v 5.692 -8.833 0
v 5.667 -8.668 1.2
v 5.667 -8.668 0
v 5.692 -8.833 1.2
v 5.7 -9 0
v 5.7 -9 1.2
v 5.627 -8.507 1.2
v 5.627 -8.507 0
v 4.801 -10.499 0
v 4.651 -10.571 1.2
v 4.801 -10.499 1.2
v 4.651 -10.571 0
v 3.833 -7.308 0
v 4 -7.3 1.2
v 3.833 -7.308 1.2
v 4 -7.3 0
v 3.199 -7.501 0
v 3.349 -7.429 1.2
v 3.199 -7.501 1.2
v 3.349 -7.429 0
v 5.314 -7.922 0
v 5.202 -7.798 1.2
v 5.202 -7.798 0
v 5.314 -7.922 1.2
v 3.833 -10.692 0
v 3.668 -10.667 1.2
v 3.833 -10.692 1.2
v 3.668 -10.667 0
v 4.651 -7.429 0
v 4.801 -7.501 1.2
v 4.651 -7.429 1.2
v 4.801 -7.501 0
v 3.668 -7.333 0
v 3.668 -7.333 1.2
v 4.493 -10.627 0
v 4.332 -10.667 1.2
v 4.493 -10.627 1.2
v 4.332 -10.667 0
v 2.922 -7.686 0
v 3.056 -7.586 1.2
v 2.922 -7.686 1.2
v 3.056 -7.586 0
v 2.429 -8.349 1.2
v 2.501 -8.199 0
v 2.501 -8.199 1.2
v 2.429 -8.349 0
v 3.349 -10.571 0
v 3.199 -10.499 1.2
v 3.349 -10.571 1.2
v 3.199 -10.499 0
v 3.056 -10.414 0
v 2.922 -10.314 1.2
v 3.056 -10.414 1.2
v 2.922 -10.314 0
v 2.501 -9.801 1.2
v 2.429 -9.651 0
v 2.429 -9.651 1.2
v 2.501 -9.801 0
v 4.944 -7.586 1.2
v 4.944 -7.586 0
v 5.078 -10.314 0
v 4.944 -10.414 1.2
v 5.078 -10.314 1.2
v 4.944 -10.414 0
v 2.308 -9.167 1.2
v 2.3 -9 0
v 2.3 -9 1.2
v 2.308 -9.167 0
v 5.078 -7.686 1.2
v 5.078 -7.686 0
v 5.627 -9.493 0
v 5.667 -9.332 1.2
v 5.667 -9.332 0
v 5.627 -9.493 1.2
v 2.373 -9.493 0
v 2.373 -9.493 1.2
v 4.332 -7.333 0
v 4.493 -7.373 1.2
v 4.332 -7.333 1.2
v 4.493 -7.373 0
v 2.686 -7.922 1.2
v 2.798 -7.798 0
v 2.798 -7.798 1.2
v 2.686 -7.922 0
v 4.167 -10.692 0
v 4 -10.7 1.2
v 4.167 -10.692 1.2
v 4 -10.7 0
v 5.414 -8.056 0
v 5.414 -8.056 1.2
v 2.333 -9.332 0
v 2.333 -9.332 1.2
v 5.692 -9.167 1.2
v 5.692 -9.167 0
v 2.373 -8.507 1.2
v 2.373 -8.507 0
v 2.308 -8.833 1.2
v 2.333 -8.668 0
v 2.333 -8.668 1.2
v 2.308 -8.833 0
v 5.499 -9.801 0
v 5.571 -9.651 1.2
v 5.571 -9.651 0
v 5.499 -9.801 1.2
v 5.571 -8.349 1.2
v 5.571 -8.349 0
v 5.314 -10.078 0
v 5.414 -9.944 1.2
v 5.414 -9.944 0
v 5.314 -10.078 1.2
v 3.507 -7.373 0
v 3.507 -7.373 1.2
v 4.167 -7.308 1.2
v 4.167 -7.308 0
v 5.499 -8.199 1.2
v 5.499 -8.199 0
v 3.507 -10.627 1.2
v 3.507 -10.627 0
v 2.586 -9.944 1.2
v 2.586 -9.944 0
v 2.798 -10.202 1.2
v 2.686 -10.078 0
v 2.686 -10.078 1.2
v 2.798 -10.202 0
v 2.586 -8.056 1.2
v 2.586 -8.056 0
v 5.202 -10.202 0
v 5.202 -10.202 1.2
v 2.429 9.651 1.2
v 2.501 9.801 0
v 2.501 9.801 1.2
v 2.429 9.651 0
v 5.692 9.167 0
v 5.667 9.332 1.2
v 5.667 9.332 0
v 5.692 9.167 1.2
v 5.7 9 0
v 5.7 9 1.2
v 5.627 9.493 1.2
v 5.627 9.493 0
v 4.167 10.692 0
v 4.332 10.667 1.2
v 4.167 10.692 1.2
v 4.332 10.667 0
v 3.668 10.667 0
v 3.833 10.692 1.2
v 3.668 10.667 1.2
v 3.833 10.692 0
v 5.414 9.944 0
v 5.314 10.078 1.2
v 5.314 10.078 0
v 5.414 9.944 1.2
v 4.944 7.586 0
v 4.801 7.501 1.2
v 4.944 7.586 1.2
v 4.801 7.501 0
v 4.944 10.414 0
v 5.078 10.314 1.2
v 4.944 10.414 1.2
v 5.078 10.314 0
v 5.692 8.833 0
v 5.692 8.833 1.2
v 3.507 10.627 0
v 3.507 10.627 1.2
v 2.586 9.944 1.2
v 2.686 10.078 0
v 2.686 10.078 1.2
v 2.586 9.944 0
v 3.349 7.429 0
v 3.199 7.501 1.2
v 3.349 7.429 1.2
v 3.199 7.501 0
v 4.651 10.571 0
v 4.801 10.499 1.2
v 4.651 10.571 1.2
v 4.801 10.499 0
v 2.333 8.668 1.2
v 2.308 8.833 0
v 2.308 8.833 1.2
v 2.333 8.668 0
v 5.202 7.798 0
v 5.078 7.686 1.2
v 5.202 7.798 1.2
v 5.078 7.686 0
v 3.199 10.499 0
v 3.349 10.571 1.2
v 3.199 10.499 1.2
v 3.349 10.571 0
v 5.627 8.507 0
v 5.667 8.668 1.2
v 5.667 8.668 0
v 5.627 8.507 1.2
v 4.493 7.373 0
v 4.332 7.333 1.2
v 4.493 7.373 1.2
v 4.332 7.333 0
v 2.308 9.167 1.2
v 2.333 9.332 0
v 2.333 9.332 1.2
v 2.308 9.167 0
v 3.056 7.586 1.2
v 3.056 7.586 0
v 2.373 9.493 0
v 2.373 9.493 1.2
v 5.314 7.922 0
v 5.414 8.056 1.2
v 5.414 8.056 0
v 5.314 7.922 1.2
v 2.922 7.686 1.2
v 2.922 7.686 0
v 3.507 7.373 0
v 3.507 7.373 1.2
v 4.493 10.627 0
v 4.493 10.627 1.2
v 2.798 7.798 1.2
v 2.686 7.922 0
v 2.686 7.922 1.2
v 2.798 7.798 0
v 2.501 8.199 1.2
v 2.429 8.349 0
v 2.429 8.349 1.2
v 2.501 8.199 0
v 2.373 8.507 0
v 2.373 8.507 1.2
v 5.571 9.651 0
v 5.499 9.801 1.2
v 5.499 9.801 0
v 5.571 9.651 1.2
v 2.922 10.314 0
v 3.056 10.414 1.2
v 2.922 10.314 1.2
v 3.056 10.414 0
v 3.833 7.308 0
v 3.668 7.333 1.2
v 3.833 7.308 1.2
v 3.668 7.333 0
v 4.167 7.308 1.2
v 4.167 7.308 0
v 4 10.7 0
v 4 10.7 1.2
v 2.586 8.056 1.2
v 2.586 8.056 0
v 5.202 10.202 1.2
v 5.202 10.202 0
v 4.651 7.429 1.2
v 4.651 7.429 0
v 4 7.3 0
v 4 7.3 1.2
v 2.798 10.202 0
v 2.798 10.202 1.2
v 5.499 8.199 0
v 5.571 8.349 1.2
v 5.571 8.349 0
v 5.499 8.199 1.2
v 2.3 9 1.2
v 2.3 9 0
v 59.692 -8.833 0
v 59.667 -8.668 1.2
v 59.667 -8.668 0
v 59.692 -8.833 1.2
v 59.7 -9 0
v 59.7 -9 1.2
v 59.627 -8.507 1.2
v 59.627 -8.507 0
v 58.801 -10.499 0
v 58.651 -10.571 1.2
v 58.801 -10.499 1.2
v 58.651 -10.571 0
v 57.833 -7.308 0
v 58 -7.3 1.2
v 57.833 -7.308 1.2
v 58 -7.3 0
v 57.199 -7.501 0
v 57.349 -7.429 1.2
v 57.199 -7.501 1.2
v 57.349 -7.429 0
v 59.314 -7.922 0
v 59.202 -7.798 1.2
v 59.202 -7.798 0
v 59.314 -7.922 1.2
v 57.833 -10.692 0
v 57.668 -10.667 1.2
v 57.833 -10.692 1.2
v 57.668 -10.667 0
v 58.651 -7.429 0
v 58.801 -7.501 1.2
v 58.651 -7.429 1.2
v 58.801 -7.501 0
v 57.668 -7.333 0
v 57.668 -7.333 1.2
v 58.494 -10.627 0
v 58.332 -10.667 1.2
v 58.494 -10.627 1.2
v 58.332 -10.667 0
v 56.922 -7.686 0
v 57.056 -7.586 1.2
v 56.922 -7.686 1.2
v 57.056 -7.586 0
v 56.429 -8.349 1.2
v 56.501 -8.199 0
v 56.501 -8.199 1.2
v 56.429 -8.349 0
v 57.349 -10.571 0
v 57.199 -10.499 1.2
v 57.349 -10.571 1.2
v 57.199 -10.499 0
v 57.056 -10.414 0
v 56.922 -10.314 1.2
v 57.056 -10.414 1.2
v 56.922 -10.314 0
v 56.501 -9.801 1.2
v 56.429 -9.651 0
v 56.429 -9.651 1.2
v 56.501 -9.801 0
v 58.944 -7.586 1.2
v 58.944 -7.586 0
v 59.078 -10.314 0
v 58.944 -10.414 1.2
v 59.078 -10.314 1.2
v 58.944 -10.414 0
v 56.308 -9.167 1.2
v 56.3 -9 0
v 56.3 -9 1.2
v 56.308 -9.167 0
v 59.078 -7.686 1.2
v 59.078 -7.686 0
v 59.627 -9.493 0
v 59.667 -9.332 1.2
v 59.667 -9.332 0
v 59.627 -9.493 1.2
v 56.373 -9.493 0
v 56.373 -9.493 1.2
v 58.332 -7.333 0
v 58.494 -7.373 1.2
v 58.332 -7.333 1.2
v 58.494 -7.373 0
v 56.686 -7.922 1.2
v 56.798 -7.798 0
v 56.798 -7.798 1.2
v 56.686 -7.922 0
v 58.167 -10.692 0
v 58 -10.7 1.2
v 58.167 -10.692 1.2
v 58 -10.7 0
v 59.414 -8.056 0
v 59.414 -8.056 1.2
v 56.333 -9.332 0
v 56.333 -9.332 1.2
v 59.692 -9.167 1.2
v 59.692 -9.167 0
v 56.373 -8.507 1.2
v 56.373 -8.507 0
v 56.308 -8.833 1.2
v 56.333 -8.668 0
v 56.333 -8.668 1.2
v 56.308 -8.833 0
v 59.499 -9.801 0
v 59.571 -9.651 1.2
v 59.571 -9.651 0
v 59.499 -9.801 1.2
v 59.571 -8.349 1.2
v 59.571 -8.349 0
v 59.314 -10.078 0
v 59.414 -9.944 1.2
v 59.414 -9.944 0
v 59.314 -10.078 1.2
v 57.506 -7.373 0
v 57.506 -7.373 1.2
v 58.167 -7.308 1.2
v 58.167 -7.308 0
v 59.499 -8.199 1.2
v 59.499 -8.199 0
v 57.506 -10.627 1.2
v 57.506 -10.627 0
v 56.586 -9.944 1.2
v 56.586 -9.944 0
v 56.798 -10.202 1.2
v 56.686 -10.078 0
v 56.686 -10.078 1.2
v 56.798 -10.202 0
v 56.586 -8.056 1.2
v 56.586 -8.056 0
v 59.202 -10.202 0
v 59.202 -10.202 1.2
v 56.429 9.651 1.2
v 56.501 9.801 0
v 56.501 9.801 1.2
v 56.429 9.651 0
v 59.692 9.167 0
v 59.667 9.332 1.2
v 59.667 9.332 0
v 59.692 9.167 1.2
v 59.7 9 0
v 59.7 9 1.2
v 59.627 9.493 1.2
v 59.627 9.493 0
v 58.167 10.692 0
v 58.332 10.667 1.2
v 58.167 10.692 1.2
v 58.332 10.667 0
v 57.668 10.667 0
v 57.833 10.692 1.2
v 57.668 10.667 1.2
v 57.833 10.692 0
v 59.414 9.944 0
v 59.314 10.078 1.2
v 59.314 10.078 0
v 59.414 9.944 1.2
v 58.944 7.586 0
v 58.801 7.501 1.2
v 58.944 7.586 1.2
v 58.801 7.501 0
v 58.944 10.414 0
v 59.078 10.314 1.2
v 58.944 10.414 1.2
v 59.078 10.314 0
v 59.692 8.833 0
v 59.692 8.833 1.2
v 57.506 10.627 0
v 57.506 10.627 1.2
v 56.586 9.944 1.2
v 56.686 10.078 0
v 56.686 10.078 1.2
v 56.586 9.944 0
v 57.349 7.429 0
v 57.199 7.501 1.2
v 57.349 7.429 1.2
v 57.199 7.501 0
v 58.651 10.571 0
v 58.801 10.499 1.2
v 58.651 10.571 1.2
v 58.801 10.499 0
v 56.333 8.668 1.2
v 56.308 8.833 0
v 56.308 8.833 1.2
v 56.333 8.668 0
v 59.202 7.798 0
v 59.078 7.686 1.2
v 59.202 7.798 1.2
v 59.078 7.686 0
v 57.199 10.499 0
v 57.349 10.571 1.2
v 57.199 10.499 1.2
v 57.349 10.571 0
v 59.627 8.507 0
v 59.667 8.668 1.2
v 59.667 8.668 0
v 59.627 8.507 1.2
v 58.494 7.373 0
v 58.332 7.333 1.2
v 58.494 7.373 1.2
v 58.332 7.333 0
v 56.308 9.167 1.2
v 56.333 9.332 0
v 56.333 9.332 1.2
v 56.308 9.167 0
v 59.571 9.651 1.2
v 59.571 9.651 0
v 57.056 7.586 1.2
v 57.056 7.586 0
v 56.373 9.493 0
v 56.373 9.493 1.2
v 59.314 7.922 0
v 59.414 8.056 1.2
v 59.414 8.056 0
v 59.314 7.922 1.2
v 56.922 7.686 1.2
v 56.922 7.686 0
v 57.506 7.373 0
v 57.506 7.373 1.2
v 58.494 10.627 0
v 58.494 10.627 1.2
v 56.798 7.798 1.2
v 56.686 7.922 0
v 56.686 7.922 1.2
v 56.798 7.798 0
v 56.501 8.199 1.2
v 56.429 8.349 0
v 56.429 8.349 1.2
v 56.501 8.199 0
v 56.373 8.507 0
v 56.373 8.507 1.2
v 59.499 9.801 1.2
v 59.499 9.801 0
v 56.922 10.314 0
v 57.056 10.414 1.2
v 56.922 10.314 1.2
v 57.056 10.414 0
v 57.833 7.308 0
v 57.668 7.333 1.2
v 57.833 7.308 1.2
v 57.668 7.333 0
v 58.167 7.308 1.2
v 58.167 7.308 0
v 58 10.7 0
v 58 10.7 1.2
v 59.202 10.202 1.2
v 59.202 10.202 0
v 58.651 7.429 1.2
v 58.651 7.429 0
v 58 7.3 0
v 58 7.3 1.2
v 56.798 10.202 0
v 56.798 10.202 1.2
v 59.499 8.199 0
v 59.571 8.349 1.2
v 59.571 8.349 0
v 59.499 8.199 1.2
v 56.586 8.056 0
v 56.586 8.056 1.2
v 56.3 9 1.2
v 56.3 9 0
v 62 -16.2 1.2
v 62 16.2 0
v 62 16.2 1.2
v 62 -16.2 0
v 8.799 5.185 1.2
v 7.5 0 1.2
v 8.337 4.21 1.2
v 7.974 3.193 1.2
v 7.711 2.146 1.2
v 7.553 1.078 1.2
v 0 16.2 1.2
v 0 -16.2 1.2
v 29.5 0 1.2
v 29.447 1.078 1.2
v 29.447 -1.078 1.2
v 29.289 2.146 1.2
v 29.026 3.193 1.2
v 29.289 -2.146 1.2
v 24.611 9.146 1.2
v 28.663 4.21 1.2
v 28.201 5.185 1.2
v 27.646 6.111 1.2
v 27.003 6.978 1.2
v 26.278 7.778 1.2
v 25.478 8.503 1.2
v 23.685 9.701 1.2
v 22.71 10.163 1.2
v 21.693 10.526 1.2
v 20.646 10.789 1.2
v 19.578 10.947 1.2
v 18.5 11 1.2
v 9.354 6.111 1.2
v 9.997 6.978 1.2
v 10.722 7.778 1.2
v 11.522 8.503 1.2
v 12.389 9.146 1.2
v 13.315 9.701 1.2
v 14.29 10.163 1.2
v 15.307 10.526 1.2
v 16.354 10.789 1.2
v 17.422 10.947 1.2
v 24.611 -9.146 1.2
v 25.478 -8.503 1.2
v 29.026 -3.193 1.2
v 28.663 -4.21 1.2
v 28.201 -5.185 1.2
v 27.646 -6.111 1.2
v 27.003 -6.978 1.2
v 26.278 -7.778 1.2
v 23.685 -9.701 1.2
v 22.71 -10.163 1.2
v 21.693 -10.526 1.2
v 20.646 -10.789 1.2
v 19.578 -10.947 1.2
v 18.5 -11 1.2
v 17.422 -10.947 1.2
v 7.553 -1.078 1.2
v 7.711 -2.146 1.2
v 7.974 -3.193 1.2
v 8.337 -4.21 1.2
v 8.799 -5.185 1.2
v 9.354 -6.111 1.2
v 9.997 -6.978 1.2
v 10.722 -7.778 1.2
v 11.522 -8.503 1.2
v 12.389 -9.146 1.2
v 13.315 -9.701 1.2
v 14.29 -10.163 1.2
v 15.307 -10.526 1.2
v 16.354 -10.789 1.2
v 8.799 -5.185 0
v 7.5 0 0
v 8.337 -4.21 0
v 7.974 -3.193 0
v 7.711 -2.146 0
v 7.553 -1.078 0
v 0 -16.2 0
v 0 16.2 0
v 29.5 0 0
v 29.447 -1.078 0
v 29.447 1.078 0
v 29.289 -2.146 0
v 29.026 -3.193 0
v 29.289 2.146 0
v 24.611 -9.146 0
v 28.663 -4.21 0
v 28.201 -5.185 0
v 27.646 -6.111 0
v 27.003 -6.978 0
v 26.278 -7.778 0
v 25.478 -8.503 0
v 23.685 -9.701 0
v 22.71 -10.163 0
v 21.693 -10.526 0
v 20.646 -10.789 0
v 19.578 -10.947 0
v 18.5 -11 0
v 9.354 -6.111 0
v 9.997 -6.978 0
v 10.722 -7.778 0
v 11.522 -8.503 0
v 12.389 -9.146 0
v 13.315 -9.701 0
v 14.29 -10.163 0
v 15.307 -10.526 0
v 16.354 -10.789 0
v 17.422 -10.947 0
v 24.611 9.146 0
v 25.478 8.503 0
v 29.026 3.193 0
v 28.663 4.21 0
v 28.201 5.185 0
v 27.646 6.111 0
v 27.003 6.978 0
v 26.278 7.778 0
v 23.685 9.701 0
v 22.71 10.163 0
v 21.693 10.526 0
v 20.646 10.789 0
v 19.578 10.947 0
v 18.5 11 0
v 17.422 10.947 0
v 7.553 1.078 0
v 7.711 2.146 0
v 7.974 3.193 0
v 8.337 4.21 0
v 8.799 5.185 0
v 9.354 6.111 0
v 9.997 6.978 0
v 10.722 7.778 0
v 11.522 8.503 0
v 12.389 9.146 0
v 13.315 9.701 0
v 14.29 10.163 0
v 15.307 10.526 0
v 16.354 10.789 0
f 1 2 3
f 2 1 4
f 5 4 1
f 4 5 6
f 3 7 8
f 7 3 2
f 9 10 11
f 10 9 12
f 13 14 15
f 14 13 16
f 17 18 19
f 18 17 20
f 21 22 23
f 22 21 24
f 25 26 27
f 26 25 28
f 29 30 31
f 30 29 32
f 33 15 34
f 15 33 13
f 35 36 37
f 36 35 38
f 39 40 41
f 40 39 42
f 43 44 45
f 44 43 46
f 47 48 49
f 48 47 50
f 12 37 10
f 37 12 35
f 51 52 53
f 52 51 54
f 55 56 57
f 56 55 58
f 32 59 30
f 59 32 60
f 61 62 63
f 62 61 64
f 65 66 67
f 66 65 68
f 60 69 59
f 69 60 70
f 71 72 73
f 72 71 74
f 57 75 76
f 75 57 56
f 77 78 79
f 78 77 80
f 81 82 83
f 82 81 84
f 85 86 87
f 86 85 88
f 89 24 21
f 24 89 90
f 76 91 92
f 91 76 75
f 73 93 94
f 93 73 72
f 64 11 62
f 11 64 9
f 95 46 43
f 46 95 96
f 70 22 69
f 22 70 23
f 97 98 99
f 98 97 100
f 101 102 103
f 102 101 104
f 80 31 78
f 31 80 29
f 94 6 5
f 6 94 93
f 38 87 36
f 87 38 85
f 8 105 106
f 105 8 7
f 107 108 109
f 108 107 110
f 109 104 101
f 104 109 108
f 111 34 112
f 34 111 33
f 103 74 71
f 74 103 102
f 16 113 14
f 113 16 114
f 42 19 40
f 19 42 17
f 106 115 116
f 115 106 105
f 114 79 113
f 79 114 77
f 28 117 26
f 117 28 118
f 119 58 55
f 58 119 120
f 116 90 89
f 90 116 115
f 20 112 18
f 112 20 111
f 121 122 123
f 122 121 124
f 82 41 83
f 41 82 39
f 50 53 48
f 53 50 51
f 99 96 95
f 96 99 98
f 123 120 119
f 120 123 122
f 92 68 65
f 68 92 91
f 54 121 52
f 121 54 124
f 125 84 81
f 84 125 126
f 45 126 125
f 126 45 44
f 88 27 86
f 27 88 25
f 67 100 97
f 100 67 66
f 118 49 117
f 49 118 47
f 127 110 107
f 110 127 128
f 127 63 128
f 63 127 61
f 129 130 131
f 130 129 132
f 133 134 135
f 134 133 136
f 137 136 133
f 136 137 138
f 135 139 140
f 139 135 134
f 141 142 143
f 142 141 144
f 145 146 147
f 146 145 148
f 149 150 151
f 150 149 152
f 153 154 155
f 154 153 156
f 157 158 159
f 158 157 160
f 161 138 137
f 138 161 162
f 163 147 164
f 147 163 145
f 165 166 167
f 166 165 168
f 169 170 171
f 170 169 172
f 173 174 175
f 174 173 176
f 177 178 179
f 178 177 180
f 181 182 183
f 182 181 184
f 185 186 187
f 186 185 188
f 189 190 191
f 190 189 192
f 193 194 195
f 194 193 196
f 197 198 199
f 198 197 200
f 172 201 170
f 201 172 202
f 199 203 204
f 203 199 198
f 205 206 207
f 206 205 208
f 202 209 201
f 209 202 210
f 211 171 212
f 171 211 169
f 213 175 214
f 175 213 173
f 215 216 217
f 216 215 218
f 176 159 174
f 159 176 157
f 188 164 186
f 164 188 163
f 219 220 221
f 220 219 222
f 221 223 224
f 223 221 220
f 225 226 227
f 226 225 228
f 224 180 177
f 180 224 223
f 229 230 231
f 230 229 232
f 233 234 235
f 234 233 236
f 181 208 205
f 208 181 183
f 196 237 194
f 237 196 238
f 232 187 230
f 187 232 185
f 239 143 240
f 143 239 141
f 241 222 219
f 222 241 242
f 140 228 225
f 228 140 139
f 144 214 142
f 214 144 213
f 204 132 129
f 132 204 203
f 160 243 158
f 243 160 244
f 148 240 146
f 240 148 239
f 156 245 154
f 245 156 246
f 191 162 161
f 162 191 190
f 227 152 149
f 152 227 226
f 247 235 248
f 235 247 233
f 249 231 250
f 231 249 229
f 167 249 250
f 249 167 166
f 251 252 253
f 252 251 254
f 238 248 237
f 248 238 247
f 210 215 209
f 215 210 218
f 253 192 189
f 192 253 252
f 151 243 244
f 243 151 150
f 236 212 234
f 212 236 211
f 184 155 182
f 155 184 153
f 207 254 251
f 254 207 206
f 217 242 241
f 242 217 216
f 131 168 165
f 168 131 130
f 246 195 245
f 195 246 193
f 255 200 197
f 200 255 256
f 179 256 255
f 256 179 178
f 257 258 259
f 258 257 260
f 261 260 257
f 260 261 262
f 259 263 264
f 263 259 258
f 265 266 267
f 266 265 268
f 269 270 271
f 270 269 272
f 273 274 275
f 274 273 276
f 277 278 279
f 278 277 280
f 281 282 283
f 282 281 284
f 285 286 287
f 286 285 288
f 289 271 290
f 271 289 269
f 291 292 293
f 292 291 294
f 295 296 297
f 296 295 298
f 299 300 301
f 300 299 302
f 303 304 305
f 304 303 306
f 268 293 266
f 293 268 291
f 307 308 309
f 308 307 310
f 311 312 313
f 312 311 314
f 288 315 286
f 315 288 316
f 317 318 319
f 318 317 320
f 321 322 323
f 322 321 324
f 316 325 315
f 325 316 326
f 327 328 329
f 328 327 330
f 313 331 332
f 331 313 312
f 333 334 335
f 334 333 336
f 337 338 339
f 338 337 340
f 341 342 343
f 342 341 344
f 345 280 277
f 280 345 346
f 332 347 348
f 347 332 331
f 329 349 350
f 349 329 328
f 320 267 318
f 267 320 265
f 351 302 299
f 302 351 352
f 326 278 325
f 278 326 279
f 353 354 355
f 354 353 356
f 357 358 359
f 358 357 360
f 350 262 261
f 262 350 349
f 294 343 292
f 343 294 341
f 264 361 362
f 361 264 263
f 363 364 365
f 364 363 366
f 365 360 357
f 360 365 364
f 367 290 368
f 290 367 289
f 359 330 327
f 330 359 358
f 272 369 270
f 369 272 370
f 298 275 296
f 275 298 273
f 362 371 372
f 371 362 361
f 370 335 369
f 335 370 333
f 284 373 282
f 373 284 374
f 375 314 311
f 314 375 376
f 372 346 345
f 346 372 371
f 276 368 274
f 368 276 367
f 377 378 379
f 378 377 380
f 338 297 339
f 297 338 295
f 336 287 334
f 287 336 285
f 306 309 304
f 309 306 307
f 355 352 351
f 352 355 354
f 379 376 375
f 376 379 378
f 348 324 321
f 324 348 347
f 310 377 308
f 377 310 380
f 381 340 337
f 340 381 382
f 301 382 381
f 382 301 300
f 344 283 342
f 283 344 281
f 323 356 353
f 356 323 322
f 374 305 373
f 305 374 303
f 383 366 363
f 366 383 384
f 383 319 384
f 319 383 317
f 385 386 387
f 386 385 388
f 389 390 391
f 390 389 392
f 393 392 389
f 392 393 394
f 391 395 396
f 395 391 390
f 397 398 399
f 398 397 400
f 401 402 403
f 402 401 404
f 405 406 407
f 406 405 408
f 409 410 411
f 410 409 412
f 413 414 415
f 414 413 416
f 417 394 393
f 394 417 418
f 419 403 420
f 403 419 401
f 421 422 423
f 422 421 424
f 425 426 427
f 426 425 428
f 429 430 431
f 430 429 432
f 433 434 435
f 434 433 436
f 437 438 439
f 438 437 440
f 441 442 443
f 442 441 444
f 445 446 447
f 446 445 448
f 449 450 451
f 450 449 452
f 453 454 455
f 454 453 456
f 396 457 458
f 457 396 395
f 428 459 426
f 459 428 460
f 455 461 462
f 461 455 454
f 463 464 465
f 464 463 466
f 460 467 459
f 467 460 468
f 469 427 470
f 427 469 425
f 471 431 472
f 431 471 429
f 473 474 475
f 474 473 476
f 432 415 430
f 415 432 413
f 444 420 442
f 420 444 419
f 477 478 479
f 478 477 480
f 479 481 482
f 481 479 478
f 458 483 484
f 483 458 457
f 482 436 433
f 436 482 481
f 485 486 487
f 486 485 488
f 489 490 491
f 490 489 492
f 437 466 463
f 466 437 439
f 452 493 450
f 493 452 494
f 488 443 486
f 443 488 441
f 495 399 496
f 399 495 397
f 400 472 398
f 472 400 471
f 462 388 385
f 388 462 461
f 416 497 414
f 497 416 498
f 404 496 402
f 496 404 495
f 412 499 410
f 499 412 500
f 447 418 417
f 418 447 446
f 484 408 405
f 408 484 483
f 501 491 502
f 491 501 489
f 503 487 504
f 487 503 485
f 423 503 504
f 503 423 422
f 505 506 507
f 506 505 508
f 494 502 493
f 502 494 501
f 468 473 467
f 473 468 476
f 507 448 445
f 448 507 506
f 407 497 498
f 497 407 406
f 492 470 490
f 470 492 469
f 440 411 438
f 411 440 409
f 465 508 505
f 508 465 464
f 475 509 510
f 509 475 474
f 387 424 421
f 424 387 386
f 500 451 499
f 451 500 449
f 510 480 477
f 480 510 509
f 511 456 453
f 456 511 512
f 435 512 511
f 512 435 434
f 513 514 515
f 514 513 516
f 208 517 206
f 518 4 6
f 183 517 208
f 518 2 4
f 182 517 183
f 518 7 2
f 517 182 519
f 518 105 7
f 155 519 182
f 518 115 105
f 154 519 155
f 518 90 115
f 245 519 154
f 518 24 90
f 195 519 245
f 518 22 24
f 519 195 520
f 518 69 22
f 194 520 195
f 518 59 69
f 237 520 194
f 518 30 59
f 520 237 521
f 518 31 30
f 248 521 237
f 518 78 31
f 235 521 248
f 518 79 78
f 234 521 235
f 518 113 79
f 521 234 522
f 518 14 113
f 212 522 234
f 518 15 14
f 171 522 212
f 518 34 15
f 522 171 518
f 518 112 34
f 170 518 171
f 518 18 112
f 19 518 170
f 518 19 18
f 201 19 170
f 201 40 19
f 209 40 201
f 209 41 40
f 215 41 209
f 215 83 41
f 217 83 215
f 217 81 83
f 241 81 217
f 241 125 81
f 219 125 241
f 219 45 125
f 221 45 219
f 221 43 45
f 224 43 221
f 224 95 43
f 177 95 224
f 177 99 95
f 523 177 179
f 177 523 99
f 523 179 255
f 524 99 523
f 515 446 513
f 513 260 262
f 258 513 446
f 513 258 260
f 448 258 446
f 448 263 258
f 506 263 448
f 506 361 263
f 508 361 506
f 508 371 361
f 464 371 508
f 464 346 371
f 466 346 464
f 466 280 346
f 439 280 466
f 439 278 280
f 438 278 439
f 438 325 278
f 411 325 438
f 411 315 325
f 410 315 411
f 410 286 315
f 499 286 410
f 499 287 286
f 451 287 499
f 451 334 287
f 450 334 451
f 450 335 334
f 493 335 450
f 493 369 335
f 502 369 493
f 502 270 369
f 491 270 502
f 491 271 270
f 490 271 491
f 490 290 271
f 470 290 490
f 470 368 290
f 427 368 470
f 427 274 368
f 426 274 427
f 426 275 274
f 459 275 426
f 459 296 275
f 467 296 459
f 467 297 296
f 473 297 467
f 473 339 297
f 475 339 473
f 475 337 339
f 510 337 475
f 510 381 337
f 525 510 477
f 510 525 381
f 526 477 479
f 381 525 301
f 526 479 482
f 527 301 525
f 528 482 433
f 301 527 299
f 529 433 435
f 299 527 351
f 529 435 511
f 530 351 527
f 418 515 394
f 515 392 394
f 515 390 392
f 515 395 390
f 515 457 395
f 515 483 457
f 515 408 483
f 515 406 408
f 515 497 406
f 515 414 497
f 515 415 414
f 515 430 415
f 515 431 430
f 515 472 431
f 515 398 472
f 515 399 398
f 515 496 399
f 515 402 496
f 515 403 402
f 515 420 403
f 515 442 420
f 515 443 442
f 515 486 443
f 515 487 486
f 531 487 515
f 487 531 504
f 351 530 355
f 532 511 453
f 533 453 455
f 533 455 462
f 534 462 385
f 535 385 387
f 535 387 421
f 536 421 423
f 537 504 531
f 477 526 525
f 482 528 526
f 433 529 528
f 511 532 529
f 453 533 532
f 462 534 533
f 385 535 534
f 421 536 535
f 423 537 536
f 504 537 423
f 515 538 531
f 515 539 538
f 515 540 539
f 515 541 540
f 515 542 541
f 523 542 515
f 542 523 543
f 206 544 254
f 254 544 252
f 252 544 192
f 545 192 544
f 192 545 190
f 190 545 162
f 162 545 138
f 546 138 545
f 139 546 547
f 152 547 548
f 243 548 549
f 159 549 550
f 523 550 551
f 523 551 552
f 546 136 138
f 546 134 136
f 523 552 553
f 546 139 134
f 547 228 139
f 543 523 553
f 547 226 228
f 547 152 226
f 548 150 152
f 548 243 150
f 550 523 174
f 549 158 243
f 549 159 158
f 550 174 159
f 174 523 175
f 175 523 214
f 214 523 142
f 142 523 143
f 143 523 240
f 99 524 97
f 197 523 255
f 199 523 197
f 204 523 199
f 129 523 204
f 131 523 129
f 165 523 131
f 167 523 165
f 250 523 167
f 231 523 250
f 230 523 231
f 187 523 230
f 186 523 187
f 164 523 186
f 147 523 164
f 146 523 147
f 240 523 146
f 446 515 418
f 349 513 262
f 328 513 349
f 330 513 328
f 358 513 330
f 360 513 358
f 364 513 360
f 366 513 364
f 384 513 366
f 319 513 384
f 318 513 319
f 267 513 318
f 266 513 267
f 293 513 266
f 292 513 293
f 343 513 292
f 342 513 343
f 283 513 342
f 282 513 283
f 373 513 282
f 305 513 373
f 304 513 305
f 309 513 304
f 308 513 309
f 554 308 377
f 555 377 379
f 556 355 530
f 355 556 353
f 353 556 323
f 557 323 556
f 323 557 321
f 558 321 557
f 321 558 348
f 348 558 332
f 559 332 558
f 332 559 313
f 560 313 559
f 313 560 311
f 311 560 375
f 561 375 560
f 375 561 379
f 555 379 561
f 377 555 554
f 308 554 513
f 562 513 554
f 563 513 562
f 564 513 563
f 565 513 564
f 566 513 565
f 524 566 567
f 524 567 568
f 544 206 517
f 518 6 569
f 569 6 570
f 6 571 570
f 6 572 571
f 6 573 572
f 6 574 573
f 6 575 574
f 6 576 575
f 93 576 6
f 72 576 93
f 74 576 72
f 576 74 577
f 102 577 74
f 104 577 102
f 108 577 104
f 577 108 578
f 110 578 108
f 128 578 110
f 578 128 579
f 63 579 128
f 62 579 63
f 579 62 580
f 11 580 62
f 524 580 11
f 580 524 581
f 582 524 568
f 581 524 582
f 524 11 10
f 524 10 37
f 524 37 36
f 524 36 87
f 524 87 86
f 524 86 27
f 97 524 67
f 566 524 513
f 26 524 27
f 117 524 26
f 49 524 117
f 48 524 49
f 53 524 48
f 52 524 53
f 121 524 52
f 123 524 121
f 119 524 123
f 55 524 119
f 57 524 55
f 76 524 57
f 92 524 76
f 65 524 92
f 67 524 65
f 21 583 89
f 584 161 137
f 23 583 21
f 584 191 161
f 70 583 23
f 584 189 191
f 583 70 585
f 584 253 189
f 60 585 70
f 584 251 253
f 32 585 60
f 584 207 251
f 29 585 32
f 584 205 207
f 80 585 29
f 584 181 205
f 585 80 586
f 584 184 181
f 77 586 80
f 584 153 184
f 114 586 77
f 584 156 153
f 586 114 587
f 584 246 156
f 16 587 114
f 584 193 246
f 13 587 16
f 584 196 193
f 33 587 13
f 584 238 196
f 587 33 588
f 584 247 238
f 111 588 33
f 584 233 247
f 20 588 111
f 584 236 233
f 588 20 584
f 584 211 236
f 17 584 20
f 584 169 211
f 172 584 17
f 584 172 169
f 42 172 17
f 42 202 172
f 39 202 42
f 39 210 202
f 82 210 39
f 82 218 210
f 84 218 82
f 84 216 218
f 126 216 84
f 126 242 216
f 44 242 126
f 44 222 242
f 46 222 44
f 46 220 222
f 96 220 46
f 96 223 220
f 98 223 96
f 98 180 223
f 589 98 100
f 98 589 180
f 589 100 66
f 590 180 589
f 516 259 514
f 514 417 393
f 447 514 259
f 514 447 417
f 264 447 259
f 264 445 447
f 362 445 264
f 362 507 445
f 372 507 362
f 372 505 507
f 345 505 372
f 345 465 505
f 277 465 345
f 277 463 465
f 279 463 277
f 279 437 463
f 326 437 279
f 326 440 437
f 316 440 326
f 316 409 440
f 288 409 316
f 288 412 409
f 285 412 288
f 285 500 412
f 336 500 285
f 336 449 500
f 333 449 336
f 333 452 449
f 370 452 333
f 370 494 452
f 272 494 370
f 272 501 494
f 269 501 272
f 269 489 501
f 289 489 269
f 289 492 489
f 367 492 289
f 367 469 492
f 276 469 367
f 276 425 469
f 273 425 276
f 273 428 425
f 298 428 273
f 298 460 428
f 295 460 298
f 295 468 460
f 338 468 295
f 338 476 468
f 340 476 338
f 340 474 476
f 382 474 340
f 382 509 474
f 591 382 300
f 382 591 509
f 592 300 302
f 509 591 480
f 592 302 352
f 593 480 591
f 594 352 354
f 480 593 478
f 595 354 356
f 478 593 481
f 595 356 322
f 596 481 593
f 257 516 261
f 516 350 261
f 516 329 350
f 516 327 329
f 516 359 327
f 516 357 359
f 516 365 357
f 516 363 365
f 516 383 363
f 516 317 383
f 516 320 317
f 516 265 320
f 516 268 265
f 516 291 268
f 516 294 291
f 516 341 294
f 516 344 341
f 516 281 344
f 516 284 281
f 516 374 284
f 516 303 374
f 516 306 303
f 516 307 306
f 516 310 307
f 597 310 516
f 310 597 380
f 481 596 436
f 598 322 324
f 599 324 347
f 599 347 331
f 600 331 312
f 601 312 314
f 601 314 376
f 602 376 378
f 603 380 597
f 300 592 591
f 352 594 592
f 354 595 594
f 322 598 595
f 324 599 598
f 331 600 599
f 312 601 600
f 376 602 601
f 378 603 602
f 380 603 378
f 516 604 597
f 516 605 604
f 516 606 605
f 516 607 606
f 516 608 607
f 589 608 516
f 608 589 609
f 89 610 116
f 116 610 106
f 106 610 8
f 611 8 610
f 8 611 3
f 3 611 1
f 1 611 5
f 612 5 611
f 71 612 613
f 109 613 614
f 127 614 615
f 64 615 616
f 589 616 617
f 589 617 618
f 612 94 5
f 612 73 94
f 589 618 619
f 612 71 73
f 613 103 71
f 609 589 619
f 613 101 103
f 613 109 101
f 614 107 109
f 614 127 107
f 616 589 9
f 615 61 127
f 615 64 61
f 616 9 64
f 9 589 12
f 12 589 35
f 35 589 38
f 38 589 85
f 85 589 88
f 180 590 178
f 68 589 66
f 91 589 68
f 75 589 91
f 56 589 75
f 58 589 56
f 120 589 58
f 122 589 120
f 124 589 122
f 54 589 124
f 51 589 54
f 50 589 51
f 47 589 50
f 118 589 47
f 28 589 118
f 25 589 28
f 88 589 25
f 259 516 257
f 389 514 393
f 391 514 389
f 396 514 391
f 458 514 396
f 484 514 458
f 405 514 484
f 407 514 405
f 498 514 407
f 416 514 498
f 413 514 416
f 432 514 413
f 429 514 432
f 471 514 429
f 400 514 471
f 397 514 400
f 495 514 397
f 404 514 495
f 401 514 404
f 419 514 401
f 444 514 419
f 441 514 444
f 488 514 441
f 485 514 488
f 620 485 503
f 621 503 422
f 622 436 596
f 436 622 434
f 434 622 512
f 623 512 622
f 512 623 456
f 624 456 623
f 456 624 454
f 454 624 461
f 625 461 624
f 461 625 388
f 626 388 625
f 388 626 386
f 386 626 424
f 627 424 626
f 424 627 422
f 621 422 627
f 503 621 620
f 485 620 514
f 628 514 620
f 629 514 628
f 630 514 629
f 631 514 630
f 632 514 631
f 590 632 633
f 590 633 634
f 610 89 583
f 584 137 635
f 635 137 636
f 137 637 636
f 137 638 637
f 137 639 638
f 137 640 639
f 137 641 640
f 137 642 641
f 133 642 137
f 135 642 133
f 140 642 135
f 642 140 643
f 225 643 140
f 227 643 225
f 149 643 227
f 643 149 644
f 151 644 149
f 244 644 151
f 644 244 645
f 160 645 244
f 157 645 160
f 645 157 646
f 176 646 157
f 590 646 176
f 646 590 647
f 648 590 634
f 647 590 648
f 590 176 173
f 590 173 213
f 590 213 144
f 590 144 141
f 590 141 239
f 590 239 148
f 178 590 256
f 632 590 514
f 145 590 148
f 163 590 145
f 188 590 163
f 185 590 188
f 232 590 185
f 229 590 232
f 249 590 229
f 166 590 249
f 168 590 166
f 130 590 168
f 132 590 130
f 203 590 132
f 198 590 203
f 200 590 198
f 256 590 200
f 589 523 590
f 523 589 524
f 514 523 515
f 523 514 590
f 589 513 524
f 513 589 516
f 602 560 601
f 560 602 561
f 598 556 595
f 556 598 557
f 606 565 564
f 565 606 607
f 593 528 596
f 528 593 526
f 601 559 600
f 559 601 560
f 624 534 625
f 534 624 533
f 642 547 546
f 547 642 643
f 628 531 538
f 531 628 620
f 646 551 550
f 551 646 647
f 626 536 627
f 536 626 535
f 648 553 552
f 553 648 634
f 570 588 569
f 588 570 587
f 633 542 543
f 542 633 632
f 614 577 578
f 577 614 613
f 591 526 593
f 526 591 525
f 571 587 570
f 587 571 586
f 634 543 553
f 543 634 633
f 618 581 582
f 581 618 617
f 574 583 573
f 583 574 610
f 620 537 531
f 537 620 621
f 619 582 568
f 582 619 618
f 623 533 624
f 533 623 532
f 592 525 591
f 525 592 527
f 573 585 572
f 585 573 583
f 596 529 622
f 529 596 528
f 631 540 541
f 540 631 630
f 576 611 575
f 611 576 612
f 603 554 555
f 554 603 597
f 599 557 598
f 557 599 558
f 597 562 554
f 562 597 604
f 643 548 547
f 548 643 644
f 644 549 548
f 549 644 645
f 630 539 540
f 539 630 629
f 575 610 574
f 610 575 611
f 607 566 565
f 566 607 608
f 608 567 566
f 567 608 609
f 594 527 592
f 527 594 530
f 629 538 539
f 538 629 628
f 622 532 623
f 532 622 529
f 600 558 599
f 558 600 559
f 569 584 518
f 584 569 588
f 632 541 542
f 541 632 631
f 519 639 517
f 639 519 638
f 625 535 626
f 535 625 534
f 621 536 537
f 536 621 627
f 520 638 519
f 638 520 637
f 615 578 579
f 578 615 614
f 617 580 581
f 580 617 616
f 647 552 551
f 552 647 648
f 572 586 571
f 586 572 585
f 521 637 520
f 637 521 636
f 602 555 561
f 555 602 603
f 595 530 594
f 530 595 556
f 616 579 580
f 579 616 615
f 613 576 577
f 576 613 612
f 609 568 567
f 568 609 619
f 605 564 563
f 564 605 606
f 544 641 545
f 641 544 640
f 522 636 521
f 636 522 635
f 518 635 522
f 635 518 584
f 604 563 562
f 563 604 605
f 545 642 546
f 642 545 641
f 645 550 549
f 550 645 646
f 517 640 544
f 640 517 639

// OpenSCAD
// file: ../params.scad
// =====================================================================
//  Pip v2 — assembly-first robot dog. Shared parameters (mm).
//  Design rules: docs/ASSEMBLY_FIRST_DESIGN.md §3. Every part is built
//  by straight-down moves; the precision lives in the parts.
//  Keep in sync with software/config.yaml (tests/test_cad_sync.py checks).
// =====================================================================
$fn = 64;

// ---------- Feetech STS3215 bus servo (12 V, 30 kg·cm) ------------------
// Measured from the SO-ARM100 project's STS3215 model. Servo frame used
// below: origin = output axis on the case top face, +Z = shaft, +X = long
// axis from the shaft toward the far end of the case.
servo_len       = 45.4;
servo_wid       = 24.8;
servo_case_h    = 32.0;   // top face -> case bottom
servo_bottom    = 4.0;    // rear idler disc + connector pins below the case
servo_shaft_off = 10.2;   // shaft centre -> near end of the case
horn_d          = 20.0;   // aluminium disc horn
horn_t          = 1.6;
horn_hole_sq    = 9.9;    // 4 tapped M3 holes on a 9.9 mm square
horn_screw_clear_d = 7.0; // centre spline-screw head clearance
servo_mass_g    = 55;     // assumed (not measured)

// ---------- one fastener for everything: M3 x 8 socket head -----------
screw_len   = 8;
m3_clear    = 3.4;
m3_pilot    = 2.6;        // self-tapping an M3 machine screw into PETG
fit         = 0.3;        // clearance around servo cases & docks
lead_in     = 1.5;        // chamfer on every mating edge (capture range)

// ---------- servo cup (the one standard servo holder) ------------------
cup_side    = 3.5;
cup_end     = 8.0;        // end walls carry the cap screws
cup_floor   = 2.5;
cup_depth   = servo_case_h + servo_bottom + cup_floor;     // 38.5
cup_x0      = -servo_shaft_off - fit - cup_end;            // -18.5
cup_x1      = servo_len - servo_shaft_off + fit + cup_end; //  43.5
cup_hw      = servo_wid / 2 + fit + cup_side;              //  16.2
cap_t       = 1.2;        // thinner than the horn so links clear it
cap_screw_x = [cup_x0 + cup_end / 2, cup_x1 - cup_end / 2];
cap_screw_y = 9;

// link plates bolt straight onto the horn: plate + horn = screw length
link_t      = screw_len - horn_t;                          // 6.4

// ---------- grip lug (rule 7): flats 20 mm apart + 3 mm datum notch ----
lug_w = 20; lug_h = 8; datum = 3;

// ---------- body / leg layout (body frame: X fwd, Y left, Z up) -------
bx        = 95;    // hip axis X (front +, rear -)
rim_y     = 45;    // |Y| of the pitch servo top face = tray side face
L2        = 100;   // hip axis -> knee axis
L3        = 100;   // knee axis -> foot ball centre
foot_d    = 22;
// lateral stack, measured outward from the pitch-servo top face
upper_in  = rim_y + horn_t;            // 46.6
upper_out = upper_in + link_t;         // 53.0 = knee servo top face
lower_in  = upper_out + horn_t;        // 54.6
lower_out = lower_in + link_t;         // 61.0
foot_y    = (lower_in + lower_out) / 2;// 57.8  (software: geometry.foot_y)

// tray
tray_wall   = 3;
tray_floor  = 3;
tray_z0     = cup_x0 - tray_floor;     // -21.5 (hip block bottom = floor top)
tray_z1     = cup_x1;                  //  43.5 (hip block top = deck bottom)
sock_wall   = 3;
sock_hw     = cup_hw + fit;            // socket half width in X
tongue_w    = 5; tongue_d = 2.5;
tongue_y    = -(rim_y - cup_depth / 2);// tongue centre (Y, right side)
sock_in_y   = -(rim_y - cup_depth) + fit;   // socket inboard wall inner face
tray_hx     = bx + sock_hw + tongue_d + sock_wall + 0.5;
deck_t      = 3;

// neck: pan servo cup built into the tray, rim just above the deck
pan_x     = 53;
pan_rim_z = tray_z1 + deck_t + 0.1;    // 46.6
bracket_z0 = pan_rim_z + horn_t;       // pan bracket sits on the horn
bracket_z1 = bracket_z0 + link_t;
// tilt servo stands upright in a sleeve on the bracket, shaft -> -Y
tilt_top_y = -14;                      // tilt servo top face (Y)
tilt_rest  = 3.5;                      // servo rests on ribs clear of the pan-horn screw heads
tilt_z     = bracket_z1 + tilt_rest + fit + (servo_len - servo_shaft_off); // tilt axis Z
sleeve_wall = 6;                       // thick X walls take the cap screws

echo(str("foot_y=", foot_y, "  tray=", 2*tray_hx, " x ", 2*rim_y,
         "  tilt axis z=", tilt_z));
// main file
// Print 10x (one per servo: 8 legs + pan + spare). Flat.
include <../lib.scad>
translate([-cup_x0, 0, 0]) servo_cap();
